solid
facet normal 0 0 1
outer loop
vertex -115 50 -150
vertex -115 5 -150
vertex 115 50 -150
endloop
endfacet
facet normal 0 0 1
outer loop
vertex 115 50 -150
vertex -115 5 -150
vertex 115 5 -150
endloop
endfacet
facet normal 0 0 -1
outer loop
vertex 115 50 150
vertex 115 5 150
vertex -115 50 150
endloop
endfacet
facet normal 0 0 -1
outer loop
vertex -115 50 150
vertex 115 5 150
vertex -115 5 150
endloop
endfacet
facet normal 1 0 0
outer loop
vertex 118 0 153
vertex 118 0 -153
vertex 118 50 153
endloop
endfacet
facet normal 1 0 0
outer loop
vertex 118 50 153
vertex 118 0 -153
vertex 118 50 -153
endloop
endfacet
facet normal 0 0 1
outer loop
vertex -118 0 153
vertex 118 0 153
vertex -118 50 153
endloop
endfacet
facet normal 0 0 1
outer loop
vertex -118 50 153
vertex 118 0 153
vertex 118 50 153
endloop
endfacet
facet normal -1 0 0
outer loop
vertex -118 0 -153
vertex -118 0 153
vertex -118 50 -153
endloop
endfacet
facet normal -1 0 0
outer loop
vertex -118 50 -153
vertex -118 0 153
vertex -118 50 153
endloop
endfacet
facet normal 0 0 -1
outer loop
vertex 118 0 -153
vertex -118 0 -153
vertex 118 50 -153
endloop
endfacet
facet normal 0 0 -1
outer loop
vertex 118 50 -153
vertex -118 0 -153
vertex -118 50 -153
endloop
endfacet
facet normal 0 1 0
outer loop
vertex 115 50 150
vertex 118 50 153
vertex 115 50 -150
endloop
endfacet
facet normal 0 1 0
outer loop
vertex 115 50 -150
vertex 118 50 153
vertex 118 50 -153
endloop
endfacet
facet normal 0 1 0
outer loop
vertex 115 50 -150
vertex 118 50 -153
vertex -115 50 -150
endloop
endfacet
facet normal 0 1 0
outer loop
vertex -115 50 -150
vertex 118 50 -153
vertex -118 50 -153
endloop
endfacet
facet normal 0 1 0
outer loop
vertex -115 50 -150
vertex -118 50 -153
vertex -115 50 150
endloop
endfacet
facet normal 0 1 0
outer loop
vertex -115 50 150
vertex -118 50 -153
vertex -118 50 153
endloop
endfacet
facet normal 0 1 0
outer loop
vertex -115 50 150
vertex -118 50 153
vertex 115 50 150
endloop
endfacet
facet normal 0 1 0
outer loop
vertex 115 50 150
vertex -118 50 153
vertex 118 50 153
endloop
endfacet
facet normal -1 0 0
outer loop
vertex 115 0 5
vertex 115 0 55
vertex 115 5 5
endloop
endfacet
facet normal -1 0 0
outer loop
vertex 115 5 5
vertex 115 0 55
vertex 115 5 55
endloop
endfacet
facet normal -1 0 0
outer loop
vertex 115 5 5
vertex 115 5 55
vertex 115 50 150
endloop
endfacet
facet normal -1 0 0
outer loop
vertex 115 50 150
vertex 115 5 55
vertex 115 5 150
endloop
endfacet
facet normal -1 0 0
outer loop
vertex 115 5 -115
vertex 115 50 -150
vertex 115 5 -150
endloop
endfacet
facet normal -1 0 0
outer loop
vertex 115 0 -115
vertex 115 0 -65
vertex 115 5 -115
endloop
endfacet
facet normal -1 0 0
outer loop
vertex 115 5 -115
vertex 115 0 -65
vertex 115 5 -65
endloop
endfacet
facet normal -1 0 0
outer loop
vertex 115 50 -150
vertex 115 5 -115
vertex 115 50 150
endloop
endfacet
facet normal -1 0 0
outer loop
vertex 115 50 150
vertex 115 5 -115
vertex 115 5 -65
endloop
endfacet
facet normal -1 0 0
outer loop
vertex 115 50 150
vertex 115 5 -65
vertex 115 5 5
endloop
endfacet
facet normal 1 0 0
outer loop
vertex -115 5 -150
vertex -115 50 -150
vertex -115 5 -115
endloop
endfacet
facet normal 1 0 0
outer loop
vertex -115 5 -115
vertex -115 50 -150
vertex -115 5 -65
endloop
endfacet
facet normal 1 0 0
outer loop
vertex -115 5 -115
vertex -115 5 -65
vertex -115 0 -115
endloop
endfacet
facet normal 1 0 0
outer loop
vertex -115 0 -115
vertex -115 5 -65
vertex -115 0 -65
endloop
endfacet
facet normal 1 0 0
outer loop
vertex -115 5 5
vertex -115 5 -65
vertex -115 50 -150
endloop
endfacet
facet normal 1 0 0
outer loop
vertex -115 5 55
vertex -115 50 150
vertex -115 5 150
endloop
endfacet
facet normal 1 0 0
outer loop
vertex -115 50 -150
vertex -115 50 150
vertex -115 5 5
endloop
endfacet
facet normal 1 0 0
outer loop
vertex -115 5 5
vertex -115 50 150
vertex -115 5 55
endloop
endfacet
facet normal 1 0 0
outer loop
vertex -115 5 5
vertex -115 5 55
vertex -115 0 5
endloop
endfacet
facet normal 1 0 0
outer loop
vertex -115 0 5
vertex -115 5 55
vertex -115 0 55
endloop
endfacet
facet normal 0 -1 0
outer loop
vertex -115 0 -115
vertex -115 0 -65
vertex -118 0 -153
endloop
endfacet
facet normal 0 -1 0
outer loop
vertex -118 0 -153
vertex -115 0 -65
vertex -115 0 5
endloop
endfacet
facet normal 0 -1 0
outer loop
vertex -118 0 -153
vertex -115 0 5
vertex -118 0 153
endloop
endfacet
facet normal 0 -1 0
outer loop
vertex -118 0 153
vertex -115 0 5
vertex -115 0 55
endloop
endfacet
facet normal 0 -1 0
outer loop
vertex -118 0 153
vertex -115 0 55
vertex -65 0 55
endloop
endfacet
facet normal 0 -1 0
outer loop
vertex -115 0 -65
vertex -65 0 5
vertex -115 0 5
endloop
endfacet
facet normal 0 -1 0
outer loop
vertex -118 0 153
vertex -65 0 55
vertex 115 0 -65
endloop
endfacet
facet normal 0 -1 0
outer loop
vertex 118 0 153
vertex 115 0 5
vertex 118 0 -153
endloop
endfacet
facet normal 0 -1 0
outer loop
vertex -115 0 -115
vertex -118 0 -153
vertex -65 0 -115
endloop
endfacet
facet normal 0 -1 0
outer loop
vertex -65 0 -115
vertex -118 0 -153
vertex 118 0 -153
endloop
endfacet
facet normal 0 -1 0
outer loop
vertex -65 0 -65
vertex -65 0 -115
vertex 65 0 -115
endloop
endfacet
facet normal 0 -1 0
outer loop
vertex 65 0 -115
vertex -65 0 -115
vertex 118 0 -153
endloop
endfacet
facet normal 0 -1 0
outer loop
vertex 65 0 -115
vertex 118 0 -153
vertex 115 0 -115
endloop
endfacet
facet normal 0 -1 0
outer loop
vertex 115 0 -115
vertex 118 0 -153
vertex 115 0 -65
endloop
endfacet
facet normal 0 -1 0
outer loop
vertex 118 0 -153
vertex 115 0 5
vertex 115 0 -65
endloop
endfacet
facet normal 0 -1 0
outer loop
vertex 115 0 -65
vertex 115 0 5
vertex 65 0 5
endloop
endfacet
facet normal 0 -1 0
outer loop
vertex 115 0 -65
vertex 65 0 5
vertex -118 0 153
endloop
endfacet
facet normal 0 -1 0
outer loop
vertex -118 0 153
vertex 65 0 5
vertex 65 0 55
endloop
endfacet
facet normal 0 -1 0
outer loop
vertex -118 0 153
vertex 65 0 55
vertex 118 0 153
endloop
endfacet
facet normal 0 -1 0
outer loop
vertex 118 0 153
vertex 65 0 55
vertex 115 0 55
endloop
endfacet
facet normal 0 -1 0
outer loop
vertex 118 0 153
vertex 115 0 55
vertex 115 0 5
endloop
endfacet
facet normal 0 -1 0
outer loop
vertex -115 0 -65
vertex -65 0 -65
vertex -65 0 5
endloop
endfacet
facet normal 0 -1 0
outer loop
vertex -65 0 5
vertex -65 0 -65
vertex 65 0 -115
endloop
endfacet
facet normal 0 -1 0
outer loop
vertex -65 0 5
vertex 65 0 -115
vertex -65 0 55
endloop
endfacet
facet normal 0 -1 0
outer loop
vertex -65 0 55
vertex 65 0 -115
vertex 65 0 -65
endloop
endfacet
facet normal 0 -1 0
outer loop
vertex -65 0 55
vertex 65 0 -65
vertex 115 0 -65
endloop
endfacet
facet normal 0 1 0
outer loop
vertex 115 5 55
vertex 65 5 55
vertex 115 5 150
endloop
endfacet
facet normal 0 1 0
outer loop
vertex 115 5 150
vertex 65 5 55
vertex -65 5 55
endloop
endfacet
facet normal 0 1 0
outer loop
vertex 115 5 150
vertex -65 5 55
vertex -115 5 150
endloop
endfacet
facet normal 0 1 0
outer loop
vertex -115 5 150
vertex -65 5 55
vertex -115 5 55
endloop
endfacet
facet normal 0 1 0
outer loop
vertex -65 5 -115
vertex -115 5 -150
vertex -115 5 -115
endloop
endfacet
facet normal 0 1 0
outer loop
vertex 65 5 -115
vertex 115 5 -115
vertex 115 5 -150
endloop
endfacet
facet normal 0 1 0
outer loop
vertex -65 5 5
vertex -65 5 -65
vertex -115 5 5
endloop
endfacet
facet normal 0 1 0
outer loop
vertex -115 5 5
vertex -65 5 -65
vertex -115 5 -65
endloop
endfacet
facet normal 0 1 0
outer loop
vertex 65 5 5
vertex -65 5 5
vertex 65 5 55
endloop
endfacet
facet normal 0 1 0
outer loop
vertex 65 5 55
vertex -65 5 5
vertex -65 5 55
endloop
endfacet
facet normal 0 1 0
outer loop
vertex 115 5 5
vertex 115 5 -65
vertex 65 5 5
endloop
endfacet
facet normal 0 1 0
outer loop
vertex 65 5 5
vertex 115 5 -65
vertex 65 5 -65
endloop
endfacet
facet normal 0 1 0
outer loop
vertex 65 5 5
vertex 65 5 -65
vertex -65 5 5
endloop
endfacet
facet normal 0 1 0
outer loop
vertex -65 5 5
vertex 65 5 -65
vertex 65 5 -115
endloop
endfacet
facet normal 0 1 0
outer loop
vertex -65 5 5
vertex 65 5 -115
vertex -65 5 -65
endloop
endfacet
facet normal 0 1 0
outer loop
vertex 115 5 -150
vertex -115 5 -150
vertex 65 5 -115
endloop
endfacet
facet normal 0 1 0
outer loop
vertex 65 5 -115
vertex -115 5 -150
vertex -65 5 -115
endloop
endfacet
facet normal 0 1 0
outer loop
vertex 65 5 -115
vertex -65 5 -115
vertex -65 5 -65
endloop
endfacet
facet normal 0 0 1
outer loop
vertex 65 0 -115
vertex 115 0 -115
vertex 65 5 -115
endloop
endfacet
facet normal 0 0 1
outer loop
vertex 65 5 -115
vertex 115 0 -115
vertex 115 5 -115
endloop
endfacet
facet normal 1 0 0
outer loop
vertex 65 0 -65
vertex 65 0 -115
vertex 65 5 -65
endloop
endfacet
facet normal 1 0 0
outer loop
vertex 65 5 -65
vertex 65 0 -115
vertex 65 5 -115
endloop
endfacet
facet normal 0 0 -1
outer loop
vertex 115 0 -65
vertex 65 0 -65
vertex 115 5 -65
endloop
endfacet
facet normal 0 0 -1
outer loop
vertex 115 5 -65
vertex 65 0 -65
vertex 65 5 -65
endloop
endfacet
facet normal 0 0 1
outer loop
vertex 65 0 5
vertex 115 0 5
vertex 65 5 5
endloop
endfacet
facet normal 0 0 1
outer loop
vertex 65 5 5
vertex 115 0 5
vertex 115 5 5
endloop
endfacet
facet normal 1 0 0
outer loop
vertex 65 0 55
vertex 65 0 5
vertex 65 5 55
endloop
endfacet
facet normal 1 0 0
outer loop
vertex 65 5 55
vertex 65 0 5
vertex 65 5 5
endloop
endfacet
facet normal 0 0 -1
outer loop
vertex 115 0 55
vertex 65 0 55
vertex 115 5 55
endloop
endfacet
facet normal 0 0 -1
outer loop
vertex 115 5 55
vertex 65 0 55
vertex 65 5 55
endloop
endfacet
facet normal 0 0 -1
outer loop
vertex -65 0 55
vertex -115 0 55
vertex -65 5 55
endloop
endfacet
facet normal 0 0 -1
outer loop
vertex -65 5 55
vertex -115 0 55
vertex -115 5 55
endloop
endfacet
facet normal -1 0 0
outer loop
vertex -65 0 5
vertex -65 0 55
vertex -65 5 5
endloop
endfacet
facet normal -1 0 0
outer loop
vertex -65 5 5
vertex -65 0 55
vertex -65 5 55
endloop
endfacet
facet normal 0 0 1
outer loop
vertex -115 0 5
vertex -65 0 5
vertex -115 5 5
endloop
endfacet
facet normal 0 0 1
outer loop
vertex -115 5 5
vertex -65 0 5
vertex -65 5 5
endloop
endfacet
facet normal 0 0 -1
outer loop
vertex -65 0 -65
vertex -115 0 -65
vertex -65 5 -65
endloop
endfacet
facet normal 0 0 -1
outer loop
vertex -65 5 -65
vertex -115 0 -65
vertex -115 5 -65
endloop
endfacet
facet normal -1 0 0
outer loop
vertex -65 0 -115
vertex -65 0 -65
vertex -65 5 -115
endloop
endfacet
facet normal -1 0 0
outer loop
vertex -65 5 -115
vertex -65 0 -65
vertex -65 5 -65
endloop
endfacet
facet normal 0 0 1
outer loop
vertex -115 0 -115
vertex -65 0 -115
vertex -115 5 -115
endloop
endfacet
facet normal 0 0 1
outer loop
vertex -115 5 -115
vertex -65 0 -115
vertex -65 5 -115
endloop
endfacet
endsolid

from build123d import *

# Parameters (mm, degrees)
BOSS_EXTRUDE1_DEPTH = 5
SKETCH2_W           = 236
SKETCH2_H           = 306
SKETCH2_W_2         = 230
SKETCH2_H_2         = 300
BOSS_EXTRUDE2_DEPTH = 50


with BuildPart() as part:
    # Sketch1 → Boss-Extrude1 (new body)
    with BuildSketch(Plane(origin=(0, 0, 0), x_dir=(1, 0, 0), z_dir=(0, 1, 0))):
        Polygon((-115, 150), (115, 150), (115, 115), (65, 115), (65, 65), (115, 65), (115, -5), (65, -5), (65, -55), (115, -55), (115, -150), (-115, -150), (-115, -55), (-65, -55), (-65, -5), (-115, -5), (-115, 65), (-65, 65), (-65, 115), (-115, 115), align=None)
    extrude(amount=BOSS_EXTRUDE1_DEPTH)

    # Sketch2 → Boss-Extrude2 (add)
    with BuildSketch(Plane(origin=(0, 0, 0), x_dir=(1, 0, 0), z_dir=(0, 1, 0))):
        Rectangle(SKETCH2_W, SKETCH2_H)
        Rectangle(SKETCH2_W_2, SKETCH2_H_2, mode=Mode.SUBTRACT)
    extrude(amount=BOSS_EXTRUDE2_DEPTH)


solid = part.part
